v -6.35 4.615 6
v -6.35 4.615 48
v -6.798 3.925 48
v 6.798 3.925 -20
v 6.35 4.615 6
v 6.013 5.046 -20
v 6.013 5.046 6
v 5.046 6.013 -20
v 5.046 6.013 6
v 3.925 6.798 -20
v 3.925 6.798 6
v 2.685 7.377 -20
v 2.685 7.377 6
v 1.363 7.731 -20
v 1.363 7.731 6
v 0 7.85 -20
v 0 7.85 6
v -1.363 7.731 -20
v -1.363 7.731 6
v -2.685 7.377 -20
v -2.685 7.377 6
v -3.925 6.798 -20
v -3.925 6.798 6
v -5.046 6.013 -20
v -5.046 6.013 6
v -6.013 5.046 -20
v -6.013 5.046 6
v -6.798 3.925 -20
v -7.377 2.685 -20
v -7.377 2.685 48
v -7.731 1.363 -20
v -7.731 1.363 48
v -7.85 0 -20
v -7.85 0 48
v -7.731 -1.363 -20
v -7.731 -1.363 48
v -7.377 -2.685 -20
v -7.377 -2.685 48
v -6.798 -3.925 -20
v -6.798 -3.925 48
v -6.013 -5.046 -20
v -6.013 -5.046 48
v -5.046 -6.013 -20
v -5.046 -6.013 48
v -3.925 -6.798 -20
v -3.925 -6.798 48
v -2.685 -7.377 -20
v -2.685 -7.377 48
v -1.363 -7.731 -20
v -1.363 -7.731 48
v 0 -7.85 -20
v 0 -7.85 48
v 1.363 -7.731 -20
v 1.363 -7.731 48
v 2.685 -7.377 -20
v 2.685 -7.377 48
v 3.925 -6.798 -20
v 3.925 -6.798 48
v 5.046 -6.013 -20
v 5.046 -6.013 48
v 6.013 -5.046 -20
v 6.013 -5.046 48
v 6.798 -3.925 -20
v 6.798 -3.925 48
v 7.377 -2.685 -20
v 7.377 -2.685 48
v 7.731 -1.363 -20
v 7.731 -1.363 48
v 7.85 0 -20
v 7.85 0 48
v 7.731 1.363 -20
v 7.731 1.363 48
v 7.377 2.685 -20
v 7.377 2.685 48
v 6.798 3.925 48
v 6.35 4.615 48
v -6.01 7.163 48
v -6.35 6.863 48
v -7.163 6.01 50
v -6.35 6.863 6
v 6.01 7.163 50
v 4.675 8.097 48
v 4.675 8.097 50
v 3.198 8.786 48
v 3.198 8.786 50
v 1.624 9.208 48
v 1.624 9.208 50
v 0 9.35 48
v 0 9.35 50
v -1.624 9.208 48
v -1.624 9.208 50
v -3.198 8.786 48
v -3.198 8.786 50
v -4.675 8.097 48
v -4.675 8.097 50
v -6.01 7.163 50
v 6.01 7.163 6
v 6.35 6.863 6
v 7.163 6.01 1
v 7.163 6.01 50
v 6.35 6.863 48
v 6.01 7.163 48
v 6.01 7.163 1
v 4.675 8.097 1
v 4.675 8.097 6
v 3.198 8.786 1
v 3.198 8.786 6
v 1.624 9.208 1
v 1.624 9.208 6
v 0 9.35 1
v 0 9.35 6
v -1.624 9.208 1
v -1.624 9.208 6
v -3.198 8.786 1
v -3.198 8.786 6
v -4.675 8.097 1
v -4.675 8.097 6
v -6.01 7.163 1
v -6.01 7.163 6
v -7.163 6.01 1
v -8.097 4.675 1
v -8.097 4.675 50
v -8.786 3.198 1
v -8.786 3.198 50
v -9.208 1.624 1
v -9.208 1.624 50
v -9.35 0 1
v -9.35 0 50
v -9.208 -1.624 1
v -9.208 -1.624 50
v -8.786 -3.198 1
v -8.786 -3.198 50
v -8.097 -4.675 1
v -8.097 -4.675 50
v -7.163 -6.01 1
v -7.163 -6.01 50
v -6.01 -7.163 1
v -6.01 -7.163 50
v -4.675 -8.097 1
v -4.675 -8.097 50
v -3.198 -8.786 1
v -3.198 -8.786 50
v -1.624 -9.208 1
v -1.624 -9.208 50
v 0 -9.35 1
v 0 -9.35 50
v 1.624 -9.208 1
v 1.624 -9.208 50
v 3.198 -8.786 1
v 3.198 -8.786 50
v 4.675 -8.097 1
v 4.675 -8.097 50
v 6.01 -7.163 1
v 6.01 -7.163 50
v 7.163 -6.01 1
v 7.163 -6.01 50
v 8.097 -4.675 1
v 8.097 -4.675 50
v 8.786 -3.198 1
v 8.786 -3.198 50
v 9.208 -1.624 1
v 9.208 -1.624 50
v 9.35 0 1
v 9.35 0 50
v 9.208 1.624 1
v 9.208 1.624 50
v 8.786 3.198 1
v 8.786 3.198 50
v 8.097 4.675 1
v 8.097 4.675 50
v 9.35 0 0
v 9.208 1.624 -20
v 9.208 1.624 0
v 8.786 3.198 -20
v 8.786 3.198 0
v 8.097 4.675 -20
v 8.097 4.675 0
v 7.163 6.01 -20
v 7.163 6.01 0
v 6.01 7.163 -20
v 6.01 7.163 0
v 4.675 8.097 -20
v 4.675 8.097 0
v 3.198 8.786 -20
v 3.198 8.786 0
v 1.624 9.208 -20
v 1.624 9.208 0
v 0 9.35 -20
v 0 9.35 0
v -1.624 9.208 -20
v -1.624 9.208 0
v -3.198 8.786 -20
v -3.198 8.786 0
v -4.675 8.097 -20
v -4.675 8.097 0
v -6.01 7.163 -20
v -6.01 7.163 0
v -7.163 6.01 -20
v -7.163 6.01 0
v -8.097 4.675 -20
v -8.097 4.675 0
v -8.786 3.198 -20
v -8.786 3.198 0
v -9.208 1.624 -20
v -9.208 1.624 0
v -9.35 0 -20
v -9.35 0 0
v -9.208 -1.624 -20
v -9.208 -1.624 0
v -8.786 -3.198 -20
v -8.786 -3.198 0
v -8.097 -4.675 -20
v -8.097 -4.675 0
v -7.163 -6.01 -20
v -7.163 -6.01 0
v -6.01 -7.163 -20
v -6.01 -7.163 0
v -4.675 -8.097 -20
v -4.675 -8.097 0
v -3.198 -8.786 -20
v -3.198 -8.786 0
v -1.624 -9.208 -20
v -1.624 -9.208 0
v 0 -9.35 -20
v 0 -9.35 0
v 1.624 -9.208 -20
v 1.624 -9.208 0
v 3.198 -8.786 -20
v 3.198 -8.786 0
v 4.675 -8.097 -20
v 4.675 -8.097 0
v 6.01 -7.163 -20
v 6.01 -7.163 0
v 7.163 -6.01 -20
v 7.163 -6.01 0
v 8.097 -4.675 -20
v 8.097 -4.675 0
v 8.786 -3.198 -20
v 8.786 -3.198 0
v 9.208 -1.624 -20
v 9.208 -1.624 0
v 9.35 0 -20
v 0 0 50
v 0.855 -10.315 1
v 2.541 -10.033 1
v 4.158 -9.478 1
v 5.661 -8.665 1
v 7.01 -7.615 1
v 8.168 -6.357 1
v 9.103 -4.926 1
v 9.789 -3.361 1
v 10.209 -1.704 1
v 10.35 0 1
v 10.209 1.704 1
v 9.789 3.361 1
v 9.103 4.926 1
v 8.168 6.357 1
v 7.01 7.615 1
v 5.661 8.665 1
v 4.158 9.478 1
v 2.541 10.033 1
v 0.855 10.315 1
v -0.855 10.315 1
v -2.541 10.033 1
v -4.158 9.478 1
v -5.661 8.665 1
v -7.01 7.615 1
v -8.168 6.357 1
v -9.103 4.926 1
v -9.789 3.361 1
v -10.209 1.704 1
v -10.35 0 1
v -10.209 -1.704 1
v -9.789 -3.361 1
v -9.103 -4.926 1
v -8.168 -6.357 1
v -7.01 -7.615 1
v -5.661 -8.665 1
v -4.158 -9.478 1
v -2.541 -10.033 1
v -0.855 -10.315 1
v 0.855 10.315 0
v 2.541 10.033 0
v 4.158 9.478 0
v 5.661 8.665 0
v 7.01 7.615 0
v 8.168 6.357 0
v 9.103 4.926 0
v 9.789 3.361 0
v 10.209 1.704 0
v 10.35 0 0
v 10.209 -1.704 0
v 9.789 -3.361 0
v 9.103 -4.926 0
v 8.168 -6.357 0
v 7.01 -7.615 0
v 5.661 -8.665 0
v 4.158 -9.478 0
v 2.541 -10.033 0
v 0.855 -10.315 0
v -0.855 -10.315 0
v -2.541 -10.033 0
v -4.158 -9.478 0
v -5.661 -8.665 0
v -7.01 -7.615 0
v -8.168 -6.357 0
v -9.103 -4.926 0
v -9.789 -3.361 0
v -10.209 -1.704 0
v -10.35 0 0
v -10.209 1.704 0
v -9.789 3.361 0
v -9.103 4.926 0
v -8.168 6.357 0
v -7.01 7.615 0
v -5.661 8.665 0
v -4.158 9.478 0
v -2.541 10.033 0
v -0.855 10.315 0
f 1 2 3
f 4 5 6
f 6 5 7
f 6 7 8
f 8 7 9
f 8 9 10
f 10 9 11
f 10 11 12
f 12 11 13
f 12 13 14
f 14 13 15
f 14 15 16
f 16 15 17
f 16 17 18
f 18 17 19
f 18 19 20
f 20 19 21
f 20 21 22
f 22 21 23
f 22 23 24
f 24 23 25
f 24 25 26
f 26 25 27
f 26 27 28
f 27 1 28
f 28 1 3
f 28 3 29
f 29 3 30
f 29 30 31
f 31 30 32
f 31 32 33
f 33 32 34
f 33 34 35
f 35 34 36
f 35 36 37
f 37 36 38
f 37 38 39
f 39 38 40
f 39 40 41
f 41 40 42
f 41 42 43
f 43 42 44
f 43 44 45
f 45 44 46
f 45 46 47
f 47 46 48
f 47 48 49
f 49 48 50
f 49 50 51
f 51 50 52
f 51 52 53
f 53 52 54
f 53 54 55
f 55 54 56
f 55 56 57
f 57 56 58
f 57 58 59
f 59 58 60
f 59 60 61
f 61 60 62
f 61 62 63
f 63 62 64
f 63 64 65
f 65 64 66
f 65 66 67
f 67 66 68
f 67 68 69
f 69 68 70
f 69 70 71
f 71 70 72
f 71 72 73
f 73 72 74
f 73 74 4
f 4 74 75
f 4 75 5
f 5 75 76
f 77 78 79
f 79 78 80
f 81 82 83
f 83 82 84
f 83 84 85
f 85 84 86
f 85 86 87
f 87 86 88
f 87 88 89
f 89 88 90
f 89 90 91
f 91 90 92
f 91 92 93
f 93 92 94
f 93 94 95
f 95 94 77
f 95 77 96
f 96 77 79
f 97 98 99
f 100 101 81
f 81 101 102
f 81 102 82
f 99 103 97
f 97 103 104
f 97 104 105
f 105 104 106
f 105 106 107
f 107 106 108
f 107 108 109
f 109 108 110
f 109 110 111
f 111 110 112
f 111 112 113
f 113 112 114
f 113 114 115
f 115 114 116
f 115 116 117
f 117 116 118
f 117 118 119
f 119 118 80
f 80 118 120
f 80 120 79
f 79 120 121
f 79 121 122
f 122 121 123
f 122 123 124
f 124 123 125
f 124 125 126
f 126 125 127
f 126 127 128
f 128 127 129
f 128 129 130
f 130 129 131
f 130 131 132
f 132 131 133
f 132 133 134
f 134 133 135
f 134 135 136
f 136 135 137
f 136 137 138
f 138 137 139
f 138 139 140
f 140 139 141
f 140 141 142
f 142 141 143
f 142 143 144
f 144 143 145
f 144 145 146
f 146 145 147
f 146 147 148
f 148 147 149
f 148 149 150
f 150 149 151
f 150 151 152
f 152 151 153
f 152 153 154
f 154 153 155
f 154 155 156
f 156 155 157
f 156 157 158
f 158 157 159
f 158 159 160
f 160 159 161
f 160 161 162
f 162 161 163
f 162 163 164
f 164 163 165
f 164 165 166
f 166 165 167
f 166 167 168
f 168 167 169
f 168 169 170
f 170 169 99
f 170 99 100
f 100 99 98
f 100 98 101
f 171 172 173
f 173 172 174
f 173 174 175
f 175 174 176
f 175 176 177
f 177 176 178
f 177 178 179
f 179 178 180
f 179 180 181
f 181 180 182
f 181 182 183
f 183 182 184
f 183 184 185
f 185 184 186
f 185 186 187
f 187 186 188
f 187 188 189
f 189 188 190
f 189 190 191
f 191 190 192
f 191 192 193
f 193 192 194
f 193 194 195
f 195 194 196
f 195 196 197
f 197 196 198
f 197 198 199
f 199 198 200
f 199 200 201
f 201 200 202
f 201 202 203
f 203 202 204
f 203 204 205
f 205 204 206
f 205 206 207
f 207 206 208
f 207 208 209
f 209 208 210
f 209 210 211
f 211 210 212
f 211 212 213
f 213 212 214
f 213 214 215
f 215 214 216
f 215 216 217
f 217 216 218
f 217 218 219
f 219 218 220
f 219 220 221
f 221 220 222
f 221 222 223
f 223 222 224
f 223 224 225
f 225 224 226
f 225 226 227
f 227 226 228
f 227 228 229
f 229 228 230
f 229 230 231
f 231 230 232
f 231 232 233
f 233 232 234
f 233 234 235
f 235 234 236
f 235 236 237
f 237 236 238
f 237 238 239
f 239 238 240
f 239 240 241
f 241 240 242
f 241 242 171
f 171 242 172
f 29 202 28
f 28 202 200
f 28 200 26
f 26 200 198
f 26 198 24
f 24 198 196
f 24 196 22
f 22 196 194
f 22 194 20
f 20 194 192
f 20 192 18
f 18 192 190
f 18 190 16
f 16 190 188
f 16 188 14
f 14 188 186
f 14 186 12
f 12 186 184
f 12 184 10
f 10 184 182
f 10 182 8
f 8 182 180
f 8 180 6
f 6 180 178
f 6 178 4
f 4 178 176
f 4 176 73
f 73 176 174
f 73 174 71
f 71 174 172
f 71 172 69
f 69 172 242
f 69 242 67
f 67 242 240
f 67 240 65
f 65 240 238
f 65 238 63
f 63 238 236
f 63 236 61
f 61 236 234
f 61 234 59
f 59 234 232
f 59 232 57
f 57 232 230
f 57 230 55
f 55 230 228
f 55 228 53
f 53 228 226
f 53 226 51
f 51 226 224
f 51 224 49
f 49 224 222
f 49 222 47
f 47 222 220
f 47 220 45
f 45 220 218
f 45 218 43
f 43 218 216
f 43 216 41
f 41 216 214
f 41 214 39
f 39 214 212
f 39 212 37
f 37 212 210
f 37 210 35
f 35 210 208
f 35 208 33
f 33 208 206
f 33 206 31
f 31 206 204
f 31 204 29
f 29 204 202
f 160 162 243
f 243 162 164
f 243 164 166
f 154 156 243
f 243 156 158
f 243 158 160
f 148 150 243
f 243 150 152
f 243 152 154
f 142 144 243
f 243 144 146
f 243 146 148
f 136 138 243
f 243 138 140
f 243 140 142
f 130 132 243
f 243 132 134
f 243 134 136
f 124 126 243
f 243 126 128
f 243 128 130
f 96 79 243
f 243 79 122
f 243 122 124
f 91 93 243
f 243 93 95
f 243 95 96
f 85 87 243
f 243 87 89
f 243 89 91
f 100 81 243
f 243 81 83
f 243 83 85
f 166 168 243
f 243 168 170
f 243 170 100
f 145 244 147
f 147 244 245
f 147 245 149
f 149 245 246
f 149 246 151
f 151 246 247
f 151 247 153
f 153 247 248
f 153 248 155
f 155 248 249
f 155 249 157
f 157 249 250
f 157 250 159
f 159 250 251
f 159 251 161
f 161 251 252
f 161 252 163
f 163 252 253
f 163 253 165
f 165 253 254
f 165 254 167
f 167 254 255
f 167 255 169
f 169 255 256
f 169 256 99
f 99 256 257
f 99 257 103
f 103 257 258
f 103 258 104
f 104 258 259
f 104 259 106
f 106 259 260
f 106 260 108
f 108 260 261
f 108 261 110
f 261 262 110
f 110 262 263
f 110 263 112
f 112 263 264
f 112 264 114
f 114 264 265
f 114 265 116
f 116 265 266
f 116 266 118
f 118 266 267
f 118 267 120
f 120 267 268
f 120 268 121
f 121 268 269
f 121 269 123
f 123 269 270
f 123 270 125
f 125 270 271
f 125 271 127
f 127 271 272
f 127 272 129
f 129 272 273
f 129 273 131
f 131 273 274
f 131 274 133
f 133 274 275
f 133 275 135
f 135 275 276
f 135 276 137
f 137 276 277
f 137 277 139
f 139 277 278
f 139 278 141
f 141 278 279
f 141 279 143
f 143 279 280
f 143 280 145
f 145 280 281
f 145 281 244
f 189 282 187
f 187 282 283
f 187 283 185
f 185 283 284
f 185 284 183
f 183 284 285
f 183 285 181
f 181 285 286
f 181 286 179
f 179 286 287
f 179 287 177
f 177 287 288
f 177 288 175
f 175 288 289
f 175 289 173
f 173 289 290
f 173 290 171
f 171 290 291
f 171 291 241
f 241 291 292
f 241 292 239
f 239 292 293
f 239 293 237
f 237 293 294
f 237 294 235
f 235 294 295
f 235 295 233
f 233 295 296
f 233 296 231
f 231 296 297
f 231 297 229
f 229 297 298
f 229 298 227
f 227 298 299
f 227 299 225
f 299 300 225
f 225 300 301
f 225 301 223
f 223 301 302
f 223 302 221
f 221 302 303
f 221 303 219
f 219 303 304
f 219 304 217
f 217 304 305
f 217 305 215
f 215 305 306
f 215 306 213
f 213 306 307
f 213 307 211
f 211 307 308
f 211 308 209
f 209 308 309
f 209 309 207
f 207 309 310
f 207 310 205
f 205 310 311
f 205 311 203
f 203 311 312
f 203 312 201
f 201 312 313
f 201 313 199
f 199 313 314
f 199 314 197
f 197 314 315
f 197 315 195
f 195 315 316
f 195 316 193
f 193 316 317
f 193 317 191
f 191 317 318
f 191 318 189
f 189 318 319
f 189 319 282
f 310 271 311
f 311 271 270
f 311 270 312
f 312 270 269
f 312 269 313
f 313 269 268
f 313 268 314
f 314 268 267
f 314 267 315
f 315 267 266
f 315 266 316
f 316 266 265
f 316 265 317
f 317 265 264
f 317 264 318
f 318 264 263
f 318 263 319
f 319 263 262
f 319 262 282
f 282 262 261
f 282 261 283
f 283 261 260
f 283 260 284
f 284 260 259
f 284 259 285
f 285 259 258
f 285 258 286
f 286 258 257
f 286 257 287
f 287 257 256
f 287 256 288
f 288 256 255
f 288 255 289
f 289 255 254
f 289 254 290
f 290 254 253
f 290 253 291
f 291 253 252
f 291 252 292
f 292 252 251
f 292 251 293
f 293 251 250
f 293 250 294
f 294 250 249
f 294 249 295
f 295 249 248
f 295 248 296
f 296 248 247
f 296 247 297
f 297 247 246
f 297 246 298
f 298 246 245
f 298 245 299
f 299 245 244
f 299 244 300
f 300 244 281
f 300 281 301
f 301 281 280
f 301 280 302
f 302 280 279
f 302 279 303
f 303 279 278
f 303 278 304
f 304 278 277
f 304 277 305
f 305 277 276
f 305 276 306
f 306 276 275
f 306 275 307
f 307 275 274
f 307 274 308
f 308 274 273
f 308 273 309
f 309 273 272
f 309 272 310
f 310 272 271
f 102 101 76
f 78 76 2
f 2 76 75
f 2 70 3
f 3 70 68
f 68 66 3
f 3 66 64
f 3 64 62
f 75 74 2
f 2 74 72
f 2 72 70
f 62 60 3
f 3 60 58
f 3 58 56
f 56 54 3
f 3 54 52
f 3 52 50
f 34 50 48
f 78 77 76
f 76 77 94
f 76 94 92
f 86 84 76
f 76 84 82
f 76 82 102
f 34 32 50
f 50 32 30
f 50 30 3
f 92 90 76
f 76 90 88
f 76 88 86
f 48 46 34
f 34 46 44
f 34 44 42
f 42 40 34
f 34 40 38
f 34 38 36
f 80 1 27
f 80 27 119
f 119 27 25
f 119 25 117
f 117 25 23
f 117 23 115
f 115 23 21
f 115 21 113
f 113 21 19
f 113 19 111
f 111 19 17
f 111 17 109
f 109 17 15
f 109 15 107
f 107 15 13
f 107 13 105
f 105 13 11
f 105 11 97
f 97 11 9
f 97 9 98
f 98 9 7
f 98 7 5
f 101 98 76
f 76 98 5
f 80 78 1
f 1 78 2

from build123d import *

# Parameters (mm, degrees)
RESSALTO_EXTRUS_O1_DEPTH      = 50
RESSALTO_EXTRUS_O1_DEPTH_BACK = 20
ESBO_O1_R                     = 9.35
ESBO_O1_R_2                   = 7.85
ESBO_O2_R                     = 10.35
ESBO_O2_R_2                   = 9.35
RESSALTO_EXTRUS_O2_DEPTH      = 1
RESSALTO_EXTRUS_O3_START      = -2
ESBO_O3_R                     = 7.85
RESSALTO_EXTRUS_O3_DEPTH      = 2
ESBO_O4_W                     = 12.7
ESBO_O4_H                     = 42
CORTE_EXTRUS_O1_DEPTH         = 21


with BuildPart() as part:
    # Esboço1 → Ressalto-extrusão1 (new, two sides: drawn at the far end of the back side and taken through both)
    with BuildSketch(Plane.XY.offset(-RESSALTO_EXTRUS_O1_DEPTH_BACK)):
        Circle(ESBO_O1_R)
        Circle(ESBO_O1_R_2, mode=Mode.SUBTRACT)
    extrude(amount=RESSALTO_EXTRUS_O1_DEPTH + RESSALTO_EXTRUS_O1_DEPTH_BACK)

    # Esboço2 → Ressalto-extrusão2 (add)
    with BuildSketch(Plane.XY):
        Circle(ESBO_O2_R)
        Circle(ESBO_O2_R_2, mode=Mode.SUBTRACT)
    extrude(amount=RESSALTO_EXTRUS_O2_DEPTH)

    # Esboço3 → Ressalto-extrusão3 (add)
    with BuildSketch(Plane.XY.offset(50).offset(RESSALTO_EXTRUS_O3_START)):
        Circle(ESBO_O3_R)
    extrude(amount=RESSALTO_EXTRUS_O3_DEPTH)

    # Esboço4 → Corte-extrusão1 (cut)
    with BuildSketch(Plane(origin=(0, 0, 0), x_dir=(1, 0, 0), z_dir=(0, 1, 0))):
        with Locations((0, -27)):
            Rectangle(ESBO_O4_W, ESBO_O4_H)
    extrude(amount=CORTE_EXTRUS_O1_DEPTH, mode=Mode.SUBTRACT)


solid = part.part
